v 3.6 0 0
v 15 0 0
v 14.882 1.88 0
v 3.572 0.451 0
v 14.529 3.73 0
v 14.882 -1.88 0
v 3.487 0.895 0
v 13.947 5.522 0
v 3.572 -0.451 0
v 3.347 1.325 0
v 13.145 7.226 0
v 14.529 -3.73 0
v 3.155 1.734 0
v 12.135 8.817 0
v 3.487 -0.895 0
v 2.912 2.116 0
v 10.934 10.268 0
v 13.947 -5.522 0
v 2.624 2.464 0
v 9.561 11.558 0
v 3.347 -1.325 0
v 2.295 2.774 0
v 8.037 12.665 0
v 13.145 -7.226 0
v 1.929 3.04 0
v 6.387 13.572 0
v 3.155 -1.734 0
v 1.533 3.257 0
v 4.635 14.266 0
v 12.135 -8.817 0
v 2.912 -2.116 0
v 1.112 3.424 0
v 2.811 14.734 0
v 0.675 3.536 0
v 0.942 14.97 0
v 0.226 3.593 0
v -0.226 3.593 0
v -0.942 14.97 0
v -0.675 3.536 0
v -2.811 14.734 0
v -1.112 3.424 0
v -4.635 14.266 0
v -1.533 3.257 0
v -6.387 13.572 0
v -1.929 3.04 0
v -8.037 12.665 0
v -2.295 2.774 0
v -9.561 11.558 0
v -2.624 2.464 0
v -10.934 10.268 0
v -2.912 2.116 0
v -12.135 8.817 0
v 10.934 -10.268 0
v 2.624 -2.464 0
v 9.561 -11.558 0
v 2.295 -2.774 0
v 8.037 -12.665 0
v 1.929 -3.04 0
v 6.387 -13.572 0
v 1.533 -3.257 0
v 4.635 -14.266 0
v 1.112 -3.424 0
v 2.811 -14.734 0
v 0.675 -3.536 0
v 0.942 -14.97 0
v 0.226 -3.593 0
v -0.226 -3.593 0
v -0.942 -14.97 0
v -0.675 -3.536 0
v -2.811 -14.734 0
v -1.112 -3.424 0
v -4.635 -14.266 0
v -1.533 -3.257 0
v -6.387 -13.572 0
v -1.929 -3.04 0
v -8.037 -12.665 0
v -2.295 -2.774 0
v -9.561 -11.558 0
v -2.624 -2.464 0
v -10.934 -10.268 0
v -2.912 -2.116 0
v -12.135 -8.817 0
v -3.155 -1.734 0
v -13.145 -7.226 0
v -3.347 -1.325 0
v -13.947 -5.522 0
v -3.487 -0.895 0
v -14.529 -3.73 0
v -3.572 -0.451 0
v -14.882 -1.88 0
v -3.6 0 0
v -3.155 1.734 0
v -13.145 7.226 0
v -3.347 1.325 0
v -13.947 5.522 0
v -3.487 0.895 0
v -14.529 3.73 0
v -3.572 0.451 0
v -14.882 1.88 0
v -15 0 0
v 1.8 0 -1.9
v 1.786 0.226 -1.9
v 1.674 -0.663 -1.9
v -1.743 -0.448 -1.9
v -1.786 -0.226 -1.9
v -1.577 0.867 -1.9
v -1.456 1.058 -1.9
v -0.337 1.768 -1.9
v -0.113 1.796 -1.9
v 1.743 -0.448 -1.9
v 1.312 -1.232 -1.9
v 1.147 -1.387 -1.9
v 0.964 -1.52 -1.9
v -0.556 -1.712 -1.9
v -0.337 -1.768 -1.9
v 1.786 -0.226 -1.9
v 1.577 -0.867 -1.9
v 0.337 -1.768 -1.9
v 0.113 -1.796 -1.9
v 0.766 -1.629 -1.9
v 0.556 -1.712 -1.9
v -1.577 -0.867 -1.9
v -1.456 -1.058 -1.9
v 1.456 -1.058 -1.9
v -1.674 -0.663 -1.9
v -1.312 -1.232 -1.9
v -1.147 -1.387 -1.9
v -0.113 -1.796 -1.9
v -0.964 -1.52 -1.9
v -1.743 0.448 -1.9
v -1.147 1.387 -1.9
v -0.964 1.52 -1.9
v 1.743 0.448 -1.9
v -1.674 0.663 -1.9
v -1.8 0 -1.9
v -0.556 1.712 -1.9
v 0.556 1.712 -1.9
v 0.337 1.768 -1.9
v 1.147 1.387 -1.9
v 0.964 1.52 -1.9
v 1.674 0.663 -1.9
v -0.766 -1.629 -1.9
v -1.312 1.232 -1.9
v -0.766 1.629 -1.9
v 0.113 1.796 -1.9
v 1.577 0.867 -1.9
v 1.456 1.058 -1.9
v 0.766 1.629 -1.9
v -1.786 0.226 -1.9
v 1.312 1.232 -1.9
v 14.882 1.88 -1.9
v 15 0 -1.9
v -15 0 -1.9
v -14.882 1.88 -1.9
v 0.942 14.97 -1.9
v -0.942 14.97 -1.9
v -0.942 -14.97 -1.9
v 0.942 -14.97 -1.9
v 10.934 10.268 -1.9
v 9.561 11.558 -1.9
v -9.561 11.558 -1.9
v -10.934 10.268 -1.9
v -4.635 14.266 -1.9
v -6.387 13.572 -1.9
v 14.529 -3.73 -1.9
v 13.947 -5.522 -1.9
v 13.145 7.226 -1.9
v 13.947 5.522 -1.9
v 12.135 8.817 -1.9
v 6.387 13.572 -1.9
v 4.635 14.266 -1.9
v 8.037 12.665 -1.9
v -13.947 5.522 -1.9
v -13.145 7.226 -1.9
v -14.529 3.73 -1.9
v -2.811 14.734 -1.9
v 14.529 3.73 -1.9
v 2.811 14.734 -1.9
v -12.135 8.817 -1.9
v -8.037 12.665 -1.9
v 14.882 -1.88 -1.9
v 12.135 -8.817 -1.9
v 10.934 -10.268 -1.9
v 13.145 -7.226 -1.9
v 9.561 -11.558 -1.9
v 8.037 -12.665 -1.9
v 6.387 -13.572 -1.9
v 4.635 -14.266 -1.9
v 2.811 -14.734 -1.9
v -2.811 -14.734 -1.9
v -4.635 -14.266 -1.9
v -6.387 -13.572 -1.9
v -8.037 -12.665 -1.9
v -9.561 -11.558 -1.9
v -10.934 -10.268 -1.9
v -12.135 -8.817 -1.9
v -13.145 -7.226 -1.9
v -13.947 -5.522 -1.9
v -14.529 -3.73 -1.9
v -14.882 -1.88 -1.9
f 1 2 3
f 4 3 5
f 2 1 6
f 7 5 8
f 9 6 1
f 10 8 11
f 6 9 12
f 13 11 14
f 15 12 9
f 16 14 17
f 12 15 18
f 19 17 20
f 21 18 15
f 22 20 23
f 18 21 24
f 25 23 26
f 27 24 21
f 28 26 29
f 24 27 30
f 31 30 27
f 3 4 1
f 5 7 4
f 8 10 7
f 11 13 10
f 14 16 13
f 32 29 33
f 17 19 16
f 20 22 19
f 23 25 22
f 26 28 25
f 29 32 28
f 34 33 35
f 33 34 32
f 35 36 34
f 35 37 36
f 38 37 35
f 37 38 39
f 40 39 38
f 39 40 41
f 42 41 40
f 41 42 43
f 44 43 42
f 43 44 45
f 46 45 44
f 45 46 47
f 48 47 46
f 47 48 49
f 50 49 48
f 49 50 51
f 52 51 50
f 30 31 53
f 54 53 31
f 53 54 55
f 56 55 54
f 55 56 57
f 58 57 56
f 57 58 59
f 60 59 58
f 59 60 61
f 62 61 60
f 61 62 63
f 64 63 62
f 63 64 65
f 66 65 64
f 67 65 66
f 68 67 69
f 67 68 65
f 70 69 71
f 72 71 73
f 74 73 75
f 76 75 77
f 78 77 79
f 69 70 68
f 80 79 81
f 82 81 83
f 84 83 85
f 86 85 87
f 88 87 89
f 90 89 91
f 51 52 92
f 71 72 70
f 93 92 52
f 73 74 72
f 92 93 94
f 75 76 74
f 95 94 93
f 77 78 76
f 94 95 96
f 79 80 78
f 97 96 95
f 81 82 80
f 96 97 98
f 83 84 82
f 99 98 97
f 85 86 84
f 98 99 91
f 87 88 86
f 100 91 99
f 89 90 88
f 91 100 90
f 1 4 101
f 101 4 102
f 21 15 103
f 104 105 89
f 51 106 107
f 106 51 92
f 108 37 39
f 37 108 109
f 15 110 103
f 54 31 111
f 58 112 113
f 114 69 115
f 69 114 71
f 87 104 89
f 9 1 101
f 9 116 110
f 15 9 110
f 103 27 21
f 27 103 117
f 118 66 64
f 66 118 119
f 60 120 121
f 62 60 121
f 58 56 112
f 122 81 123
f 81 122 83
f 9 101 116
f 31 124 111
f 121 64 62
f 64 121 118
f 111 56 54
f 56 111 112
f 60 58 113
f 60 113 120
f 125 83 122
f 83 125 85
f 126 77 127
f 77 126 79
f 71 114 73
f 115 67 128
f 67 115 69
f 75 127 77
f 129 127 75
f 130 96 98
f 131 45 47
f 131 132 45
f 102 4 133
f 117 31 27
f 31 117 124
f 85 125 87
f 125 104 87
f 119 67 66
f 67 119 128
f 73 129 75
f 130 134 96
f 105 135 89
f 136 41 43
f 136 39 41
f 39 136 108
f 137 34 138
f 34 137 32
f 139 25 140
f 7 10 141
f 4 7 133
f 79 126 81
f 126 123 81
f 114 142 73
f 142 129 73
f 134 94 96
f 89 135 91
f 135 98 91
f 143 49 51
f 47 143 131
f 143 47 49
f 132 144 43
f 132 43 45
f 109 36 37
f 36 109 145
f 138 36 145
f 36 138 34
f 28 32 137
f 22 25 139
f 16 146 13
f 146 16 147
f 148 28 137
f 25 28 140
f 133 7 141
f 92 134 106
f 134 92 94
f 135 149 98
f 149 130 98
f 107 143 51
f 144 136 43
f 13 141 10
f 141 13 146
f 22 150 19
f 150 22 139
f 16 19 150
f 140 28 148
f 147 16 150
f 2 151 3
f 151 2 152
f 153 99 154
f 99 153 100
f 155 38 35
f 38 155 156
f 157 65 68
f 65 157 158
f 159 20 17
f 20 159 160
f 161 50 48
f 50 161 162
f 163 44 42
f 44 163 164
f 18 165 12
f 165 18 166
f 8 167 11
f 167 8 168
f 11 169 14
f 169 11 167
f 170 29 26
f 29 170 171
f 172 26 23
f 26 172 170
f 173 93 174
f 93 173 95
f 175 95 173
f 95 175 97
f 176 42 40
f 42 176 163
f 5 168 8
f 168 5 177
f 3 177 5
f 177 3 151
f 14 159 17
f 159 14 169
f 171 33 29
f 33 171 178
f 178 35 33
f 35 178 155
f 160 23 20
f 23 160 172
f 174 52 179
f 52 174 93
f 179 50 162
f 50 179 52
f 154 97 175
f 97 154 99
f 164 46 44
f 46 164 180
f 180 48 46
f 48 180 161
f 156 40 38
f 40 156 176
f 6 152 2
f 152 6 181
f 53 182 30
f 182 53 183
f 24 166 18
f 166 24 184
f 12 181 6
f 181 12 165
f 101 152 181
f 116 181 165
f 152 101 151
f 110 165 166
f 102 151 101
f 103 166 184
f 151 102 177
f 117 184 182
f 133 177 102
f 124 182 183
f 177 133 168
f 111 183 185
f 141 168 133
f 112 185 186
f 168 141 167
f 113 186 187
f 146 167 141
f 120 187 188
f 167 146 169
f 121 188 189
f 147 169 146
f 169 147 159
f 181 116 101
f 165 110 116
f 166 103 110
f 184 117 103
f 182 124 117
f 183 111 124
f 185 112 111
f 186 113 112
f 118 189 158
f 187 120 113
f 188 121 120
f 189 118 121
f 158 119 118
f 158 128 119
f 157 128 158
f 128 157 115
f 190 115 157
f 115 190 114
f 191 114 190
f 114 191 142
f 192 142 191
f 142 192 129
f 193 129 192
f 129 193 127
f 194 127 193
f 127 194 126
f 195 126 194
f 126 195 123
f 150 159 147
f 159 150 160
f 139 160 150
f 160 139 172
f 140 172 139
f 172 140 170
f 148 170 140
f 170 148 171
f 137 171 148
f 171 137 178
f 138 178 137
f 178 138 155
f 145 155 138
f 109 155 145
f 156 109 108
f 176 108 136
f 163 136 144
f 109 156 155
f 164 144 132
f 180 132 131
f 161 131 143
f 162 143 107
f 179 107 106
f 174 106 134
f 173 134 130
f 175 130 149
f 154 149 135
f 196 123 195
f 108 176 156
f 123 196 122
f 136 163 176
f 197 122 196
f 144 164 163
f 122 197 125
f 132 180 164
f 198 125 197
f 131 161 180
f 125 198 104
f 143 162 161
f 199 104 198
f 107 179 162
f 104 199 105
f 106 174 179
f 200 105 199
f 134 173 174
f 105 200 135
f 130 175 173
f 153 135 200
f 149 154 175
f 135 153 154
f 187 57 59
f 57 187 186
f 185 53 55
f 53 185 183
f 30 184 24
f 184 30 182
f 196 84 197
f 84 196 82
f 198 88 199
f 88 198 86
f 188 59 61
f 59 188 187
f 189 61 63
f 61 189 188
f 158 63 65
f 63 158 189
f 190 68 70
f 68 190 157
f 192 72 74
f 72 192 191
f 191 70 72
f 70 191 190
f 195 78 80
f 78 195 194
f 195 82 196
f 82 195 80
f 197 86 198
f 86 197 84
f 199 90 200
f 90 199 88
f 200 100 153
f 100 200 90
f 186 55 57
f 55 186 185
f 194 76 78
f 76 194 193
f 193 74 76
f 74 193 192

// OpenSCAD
$fn = 50;

difference() {
	union() {
		translate(v = [0, 0, -1.9]) {
			cylinder(h = 1.9, r = 15.0);
		}
	}
	union() {
		translate(v = [0, 0, 0]) {
			rotate(a = [0, 0, 0]) {
				difference() {
					union() {
						translate(v = [0, 0, -4.9]) {
							cylinder(h = 4.9, r = 1.5);
						}
						translate(v = [0, 0, -1.9]) {
							cylinder(h = 1.9, r1 = 1.8, r2 = 3.6);
						}
						translate(v = [0, 0, -4.9]) {
							cylinder(h = 4.9, r = 1.8);
						}
						translate(v = [0, 0, -4.9]) {
							cylinder(h = 4.9, r = 1.5);
						}
					}
					union();
				}
			}
		}
	}
}
